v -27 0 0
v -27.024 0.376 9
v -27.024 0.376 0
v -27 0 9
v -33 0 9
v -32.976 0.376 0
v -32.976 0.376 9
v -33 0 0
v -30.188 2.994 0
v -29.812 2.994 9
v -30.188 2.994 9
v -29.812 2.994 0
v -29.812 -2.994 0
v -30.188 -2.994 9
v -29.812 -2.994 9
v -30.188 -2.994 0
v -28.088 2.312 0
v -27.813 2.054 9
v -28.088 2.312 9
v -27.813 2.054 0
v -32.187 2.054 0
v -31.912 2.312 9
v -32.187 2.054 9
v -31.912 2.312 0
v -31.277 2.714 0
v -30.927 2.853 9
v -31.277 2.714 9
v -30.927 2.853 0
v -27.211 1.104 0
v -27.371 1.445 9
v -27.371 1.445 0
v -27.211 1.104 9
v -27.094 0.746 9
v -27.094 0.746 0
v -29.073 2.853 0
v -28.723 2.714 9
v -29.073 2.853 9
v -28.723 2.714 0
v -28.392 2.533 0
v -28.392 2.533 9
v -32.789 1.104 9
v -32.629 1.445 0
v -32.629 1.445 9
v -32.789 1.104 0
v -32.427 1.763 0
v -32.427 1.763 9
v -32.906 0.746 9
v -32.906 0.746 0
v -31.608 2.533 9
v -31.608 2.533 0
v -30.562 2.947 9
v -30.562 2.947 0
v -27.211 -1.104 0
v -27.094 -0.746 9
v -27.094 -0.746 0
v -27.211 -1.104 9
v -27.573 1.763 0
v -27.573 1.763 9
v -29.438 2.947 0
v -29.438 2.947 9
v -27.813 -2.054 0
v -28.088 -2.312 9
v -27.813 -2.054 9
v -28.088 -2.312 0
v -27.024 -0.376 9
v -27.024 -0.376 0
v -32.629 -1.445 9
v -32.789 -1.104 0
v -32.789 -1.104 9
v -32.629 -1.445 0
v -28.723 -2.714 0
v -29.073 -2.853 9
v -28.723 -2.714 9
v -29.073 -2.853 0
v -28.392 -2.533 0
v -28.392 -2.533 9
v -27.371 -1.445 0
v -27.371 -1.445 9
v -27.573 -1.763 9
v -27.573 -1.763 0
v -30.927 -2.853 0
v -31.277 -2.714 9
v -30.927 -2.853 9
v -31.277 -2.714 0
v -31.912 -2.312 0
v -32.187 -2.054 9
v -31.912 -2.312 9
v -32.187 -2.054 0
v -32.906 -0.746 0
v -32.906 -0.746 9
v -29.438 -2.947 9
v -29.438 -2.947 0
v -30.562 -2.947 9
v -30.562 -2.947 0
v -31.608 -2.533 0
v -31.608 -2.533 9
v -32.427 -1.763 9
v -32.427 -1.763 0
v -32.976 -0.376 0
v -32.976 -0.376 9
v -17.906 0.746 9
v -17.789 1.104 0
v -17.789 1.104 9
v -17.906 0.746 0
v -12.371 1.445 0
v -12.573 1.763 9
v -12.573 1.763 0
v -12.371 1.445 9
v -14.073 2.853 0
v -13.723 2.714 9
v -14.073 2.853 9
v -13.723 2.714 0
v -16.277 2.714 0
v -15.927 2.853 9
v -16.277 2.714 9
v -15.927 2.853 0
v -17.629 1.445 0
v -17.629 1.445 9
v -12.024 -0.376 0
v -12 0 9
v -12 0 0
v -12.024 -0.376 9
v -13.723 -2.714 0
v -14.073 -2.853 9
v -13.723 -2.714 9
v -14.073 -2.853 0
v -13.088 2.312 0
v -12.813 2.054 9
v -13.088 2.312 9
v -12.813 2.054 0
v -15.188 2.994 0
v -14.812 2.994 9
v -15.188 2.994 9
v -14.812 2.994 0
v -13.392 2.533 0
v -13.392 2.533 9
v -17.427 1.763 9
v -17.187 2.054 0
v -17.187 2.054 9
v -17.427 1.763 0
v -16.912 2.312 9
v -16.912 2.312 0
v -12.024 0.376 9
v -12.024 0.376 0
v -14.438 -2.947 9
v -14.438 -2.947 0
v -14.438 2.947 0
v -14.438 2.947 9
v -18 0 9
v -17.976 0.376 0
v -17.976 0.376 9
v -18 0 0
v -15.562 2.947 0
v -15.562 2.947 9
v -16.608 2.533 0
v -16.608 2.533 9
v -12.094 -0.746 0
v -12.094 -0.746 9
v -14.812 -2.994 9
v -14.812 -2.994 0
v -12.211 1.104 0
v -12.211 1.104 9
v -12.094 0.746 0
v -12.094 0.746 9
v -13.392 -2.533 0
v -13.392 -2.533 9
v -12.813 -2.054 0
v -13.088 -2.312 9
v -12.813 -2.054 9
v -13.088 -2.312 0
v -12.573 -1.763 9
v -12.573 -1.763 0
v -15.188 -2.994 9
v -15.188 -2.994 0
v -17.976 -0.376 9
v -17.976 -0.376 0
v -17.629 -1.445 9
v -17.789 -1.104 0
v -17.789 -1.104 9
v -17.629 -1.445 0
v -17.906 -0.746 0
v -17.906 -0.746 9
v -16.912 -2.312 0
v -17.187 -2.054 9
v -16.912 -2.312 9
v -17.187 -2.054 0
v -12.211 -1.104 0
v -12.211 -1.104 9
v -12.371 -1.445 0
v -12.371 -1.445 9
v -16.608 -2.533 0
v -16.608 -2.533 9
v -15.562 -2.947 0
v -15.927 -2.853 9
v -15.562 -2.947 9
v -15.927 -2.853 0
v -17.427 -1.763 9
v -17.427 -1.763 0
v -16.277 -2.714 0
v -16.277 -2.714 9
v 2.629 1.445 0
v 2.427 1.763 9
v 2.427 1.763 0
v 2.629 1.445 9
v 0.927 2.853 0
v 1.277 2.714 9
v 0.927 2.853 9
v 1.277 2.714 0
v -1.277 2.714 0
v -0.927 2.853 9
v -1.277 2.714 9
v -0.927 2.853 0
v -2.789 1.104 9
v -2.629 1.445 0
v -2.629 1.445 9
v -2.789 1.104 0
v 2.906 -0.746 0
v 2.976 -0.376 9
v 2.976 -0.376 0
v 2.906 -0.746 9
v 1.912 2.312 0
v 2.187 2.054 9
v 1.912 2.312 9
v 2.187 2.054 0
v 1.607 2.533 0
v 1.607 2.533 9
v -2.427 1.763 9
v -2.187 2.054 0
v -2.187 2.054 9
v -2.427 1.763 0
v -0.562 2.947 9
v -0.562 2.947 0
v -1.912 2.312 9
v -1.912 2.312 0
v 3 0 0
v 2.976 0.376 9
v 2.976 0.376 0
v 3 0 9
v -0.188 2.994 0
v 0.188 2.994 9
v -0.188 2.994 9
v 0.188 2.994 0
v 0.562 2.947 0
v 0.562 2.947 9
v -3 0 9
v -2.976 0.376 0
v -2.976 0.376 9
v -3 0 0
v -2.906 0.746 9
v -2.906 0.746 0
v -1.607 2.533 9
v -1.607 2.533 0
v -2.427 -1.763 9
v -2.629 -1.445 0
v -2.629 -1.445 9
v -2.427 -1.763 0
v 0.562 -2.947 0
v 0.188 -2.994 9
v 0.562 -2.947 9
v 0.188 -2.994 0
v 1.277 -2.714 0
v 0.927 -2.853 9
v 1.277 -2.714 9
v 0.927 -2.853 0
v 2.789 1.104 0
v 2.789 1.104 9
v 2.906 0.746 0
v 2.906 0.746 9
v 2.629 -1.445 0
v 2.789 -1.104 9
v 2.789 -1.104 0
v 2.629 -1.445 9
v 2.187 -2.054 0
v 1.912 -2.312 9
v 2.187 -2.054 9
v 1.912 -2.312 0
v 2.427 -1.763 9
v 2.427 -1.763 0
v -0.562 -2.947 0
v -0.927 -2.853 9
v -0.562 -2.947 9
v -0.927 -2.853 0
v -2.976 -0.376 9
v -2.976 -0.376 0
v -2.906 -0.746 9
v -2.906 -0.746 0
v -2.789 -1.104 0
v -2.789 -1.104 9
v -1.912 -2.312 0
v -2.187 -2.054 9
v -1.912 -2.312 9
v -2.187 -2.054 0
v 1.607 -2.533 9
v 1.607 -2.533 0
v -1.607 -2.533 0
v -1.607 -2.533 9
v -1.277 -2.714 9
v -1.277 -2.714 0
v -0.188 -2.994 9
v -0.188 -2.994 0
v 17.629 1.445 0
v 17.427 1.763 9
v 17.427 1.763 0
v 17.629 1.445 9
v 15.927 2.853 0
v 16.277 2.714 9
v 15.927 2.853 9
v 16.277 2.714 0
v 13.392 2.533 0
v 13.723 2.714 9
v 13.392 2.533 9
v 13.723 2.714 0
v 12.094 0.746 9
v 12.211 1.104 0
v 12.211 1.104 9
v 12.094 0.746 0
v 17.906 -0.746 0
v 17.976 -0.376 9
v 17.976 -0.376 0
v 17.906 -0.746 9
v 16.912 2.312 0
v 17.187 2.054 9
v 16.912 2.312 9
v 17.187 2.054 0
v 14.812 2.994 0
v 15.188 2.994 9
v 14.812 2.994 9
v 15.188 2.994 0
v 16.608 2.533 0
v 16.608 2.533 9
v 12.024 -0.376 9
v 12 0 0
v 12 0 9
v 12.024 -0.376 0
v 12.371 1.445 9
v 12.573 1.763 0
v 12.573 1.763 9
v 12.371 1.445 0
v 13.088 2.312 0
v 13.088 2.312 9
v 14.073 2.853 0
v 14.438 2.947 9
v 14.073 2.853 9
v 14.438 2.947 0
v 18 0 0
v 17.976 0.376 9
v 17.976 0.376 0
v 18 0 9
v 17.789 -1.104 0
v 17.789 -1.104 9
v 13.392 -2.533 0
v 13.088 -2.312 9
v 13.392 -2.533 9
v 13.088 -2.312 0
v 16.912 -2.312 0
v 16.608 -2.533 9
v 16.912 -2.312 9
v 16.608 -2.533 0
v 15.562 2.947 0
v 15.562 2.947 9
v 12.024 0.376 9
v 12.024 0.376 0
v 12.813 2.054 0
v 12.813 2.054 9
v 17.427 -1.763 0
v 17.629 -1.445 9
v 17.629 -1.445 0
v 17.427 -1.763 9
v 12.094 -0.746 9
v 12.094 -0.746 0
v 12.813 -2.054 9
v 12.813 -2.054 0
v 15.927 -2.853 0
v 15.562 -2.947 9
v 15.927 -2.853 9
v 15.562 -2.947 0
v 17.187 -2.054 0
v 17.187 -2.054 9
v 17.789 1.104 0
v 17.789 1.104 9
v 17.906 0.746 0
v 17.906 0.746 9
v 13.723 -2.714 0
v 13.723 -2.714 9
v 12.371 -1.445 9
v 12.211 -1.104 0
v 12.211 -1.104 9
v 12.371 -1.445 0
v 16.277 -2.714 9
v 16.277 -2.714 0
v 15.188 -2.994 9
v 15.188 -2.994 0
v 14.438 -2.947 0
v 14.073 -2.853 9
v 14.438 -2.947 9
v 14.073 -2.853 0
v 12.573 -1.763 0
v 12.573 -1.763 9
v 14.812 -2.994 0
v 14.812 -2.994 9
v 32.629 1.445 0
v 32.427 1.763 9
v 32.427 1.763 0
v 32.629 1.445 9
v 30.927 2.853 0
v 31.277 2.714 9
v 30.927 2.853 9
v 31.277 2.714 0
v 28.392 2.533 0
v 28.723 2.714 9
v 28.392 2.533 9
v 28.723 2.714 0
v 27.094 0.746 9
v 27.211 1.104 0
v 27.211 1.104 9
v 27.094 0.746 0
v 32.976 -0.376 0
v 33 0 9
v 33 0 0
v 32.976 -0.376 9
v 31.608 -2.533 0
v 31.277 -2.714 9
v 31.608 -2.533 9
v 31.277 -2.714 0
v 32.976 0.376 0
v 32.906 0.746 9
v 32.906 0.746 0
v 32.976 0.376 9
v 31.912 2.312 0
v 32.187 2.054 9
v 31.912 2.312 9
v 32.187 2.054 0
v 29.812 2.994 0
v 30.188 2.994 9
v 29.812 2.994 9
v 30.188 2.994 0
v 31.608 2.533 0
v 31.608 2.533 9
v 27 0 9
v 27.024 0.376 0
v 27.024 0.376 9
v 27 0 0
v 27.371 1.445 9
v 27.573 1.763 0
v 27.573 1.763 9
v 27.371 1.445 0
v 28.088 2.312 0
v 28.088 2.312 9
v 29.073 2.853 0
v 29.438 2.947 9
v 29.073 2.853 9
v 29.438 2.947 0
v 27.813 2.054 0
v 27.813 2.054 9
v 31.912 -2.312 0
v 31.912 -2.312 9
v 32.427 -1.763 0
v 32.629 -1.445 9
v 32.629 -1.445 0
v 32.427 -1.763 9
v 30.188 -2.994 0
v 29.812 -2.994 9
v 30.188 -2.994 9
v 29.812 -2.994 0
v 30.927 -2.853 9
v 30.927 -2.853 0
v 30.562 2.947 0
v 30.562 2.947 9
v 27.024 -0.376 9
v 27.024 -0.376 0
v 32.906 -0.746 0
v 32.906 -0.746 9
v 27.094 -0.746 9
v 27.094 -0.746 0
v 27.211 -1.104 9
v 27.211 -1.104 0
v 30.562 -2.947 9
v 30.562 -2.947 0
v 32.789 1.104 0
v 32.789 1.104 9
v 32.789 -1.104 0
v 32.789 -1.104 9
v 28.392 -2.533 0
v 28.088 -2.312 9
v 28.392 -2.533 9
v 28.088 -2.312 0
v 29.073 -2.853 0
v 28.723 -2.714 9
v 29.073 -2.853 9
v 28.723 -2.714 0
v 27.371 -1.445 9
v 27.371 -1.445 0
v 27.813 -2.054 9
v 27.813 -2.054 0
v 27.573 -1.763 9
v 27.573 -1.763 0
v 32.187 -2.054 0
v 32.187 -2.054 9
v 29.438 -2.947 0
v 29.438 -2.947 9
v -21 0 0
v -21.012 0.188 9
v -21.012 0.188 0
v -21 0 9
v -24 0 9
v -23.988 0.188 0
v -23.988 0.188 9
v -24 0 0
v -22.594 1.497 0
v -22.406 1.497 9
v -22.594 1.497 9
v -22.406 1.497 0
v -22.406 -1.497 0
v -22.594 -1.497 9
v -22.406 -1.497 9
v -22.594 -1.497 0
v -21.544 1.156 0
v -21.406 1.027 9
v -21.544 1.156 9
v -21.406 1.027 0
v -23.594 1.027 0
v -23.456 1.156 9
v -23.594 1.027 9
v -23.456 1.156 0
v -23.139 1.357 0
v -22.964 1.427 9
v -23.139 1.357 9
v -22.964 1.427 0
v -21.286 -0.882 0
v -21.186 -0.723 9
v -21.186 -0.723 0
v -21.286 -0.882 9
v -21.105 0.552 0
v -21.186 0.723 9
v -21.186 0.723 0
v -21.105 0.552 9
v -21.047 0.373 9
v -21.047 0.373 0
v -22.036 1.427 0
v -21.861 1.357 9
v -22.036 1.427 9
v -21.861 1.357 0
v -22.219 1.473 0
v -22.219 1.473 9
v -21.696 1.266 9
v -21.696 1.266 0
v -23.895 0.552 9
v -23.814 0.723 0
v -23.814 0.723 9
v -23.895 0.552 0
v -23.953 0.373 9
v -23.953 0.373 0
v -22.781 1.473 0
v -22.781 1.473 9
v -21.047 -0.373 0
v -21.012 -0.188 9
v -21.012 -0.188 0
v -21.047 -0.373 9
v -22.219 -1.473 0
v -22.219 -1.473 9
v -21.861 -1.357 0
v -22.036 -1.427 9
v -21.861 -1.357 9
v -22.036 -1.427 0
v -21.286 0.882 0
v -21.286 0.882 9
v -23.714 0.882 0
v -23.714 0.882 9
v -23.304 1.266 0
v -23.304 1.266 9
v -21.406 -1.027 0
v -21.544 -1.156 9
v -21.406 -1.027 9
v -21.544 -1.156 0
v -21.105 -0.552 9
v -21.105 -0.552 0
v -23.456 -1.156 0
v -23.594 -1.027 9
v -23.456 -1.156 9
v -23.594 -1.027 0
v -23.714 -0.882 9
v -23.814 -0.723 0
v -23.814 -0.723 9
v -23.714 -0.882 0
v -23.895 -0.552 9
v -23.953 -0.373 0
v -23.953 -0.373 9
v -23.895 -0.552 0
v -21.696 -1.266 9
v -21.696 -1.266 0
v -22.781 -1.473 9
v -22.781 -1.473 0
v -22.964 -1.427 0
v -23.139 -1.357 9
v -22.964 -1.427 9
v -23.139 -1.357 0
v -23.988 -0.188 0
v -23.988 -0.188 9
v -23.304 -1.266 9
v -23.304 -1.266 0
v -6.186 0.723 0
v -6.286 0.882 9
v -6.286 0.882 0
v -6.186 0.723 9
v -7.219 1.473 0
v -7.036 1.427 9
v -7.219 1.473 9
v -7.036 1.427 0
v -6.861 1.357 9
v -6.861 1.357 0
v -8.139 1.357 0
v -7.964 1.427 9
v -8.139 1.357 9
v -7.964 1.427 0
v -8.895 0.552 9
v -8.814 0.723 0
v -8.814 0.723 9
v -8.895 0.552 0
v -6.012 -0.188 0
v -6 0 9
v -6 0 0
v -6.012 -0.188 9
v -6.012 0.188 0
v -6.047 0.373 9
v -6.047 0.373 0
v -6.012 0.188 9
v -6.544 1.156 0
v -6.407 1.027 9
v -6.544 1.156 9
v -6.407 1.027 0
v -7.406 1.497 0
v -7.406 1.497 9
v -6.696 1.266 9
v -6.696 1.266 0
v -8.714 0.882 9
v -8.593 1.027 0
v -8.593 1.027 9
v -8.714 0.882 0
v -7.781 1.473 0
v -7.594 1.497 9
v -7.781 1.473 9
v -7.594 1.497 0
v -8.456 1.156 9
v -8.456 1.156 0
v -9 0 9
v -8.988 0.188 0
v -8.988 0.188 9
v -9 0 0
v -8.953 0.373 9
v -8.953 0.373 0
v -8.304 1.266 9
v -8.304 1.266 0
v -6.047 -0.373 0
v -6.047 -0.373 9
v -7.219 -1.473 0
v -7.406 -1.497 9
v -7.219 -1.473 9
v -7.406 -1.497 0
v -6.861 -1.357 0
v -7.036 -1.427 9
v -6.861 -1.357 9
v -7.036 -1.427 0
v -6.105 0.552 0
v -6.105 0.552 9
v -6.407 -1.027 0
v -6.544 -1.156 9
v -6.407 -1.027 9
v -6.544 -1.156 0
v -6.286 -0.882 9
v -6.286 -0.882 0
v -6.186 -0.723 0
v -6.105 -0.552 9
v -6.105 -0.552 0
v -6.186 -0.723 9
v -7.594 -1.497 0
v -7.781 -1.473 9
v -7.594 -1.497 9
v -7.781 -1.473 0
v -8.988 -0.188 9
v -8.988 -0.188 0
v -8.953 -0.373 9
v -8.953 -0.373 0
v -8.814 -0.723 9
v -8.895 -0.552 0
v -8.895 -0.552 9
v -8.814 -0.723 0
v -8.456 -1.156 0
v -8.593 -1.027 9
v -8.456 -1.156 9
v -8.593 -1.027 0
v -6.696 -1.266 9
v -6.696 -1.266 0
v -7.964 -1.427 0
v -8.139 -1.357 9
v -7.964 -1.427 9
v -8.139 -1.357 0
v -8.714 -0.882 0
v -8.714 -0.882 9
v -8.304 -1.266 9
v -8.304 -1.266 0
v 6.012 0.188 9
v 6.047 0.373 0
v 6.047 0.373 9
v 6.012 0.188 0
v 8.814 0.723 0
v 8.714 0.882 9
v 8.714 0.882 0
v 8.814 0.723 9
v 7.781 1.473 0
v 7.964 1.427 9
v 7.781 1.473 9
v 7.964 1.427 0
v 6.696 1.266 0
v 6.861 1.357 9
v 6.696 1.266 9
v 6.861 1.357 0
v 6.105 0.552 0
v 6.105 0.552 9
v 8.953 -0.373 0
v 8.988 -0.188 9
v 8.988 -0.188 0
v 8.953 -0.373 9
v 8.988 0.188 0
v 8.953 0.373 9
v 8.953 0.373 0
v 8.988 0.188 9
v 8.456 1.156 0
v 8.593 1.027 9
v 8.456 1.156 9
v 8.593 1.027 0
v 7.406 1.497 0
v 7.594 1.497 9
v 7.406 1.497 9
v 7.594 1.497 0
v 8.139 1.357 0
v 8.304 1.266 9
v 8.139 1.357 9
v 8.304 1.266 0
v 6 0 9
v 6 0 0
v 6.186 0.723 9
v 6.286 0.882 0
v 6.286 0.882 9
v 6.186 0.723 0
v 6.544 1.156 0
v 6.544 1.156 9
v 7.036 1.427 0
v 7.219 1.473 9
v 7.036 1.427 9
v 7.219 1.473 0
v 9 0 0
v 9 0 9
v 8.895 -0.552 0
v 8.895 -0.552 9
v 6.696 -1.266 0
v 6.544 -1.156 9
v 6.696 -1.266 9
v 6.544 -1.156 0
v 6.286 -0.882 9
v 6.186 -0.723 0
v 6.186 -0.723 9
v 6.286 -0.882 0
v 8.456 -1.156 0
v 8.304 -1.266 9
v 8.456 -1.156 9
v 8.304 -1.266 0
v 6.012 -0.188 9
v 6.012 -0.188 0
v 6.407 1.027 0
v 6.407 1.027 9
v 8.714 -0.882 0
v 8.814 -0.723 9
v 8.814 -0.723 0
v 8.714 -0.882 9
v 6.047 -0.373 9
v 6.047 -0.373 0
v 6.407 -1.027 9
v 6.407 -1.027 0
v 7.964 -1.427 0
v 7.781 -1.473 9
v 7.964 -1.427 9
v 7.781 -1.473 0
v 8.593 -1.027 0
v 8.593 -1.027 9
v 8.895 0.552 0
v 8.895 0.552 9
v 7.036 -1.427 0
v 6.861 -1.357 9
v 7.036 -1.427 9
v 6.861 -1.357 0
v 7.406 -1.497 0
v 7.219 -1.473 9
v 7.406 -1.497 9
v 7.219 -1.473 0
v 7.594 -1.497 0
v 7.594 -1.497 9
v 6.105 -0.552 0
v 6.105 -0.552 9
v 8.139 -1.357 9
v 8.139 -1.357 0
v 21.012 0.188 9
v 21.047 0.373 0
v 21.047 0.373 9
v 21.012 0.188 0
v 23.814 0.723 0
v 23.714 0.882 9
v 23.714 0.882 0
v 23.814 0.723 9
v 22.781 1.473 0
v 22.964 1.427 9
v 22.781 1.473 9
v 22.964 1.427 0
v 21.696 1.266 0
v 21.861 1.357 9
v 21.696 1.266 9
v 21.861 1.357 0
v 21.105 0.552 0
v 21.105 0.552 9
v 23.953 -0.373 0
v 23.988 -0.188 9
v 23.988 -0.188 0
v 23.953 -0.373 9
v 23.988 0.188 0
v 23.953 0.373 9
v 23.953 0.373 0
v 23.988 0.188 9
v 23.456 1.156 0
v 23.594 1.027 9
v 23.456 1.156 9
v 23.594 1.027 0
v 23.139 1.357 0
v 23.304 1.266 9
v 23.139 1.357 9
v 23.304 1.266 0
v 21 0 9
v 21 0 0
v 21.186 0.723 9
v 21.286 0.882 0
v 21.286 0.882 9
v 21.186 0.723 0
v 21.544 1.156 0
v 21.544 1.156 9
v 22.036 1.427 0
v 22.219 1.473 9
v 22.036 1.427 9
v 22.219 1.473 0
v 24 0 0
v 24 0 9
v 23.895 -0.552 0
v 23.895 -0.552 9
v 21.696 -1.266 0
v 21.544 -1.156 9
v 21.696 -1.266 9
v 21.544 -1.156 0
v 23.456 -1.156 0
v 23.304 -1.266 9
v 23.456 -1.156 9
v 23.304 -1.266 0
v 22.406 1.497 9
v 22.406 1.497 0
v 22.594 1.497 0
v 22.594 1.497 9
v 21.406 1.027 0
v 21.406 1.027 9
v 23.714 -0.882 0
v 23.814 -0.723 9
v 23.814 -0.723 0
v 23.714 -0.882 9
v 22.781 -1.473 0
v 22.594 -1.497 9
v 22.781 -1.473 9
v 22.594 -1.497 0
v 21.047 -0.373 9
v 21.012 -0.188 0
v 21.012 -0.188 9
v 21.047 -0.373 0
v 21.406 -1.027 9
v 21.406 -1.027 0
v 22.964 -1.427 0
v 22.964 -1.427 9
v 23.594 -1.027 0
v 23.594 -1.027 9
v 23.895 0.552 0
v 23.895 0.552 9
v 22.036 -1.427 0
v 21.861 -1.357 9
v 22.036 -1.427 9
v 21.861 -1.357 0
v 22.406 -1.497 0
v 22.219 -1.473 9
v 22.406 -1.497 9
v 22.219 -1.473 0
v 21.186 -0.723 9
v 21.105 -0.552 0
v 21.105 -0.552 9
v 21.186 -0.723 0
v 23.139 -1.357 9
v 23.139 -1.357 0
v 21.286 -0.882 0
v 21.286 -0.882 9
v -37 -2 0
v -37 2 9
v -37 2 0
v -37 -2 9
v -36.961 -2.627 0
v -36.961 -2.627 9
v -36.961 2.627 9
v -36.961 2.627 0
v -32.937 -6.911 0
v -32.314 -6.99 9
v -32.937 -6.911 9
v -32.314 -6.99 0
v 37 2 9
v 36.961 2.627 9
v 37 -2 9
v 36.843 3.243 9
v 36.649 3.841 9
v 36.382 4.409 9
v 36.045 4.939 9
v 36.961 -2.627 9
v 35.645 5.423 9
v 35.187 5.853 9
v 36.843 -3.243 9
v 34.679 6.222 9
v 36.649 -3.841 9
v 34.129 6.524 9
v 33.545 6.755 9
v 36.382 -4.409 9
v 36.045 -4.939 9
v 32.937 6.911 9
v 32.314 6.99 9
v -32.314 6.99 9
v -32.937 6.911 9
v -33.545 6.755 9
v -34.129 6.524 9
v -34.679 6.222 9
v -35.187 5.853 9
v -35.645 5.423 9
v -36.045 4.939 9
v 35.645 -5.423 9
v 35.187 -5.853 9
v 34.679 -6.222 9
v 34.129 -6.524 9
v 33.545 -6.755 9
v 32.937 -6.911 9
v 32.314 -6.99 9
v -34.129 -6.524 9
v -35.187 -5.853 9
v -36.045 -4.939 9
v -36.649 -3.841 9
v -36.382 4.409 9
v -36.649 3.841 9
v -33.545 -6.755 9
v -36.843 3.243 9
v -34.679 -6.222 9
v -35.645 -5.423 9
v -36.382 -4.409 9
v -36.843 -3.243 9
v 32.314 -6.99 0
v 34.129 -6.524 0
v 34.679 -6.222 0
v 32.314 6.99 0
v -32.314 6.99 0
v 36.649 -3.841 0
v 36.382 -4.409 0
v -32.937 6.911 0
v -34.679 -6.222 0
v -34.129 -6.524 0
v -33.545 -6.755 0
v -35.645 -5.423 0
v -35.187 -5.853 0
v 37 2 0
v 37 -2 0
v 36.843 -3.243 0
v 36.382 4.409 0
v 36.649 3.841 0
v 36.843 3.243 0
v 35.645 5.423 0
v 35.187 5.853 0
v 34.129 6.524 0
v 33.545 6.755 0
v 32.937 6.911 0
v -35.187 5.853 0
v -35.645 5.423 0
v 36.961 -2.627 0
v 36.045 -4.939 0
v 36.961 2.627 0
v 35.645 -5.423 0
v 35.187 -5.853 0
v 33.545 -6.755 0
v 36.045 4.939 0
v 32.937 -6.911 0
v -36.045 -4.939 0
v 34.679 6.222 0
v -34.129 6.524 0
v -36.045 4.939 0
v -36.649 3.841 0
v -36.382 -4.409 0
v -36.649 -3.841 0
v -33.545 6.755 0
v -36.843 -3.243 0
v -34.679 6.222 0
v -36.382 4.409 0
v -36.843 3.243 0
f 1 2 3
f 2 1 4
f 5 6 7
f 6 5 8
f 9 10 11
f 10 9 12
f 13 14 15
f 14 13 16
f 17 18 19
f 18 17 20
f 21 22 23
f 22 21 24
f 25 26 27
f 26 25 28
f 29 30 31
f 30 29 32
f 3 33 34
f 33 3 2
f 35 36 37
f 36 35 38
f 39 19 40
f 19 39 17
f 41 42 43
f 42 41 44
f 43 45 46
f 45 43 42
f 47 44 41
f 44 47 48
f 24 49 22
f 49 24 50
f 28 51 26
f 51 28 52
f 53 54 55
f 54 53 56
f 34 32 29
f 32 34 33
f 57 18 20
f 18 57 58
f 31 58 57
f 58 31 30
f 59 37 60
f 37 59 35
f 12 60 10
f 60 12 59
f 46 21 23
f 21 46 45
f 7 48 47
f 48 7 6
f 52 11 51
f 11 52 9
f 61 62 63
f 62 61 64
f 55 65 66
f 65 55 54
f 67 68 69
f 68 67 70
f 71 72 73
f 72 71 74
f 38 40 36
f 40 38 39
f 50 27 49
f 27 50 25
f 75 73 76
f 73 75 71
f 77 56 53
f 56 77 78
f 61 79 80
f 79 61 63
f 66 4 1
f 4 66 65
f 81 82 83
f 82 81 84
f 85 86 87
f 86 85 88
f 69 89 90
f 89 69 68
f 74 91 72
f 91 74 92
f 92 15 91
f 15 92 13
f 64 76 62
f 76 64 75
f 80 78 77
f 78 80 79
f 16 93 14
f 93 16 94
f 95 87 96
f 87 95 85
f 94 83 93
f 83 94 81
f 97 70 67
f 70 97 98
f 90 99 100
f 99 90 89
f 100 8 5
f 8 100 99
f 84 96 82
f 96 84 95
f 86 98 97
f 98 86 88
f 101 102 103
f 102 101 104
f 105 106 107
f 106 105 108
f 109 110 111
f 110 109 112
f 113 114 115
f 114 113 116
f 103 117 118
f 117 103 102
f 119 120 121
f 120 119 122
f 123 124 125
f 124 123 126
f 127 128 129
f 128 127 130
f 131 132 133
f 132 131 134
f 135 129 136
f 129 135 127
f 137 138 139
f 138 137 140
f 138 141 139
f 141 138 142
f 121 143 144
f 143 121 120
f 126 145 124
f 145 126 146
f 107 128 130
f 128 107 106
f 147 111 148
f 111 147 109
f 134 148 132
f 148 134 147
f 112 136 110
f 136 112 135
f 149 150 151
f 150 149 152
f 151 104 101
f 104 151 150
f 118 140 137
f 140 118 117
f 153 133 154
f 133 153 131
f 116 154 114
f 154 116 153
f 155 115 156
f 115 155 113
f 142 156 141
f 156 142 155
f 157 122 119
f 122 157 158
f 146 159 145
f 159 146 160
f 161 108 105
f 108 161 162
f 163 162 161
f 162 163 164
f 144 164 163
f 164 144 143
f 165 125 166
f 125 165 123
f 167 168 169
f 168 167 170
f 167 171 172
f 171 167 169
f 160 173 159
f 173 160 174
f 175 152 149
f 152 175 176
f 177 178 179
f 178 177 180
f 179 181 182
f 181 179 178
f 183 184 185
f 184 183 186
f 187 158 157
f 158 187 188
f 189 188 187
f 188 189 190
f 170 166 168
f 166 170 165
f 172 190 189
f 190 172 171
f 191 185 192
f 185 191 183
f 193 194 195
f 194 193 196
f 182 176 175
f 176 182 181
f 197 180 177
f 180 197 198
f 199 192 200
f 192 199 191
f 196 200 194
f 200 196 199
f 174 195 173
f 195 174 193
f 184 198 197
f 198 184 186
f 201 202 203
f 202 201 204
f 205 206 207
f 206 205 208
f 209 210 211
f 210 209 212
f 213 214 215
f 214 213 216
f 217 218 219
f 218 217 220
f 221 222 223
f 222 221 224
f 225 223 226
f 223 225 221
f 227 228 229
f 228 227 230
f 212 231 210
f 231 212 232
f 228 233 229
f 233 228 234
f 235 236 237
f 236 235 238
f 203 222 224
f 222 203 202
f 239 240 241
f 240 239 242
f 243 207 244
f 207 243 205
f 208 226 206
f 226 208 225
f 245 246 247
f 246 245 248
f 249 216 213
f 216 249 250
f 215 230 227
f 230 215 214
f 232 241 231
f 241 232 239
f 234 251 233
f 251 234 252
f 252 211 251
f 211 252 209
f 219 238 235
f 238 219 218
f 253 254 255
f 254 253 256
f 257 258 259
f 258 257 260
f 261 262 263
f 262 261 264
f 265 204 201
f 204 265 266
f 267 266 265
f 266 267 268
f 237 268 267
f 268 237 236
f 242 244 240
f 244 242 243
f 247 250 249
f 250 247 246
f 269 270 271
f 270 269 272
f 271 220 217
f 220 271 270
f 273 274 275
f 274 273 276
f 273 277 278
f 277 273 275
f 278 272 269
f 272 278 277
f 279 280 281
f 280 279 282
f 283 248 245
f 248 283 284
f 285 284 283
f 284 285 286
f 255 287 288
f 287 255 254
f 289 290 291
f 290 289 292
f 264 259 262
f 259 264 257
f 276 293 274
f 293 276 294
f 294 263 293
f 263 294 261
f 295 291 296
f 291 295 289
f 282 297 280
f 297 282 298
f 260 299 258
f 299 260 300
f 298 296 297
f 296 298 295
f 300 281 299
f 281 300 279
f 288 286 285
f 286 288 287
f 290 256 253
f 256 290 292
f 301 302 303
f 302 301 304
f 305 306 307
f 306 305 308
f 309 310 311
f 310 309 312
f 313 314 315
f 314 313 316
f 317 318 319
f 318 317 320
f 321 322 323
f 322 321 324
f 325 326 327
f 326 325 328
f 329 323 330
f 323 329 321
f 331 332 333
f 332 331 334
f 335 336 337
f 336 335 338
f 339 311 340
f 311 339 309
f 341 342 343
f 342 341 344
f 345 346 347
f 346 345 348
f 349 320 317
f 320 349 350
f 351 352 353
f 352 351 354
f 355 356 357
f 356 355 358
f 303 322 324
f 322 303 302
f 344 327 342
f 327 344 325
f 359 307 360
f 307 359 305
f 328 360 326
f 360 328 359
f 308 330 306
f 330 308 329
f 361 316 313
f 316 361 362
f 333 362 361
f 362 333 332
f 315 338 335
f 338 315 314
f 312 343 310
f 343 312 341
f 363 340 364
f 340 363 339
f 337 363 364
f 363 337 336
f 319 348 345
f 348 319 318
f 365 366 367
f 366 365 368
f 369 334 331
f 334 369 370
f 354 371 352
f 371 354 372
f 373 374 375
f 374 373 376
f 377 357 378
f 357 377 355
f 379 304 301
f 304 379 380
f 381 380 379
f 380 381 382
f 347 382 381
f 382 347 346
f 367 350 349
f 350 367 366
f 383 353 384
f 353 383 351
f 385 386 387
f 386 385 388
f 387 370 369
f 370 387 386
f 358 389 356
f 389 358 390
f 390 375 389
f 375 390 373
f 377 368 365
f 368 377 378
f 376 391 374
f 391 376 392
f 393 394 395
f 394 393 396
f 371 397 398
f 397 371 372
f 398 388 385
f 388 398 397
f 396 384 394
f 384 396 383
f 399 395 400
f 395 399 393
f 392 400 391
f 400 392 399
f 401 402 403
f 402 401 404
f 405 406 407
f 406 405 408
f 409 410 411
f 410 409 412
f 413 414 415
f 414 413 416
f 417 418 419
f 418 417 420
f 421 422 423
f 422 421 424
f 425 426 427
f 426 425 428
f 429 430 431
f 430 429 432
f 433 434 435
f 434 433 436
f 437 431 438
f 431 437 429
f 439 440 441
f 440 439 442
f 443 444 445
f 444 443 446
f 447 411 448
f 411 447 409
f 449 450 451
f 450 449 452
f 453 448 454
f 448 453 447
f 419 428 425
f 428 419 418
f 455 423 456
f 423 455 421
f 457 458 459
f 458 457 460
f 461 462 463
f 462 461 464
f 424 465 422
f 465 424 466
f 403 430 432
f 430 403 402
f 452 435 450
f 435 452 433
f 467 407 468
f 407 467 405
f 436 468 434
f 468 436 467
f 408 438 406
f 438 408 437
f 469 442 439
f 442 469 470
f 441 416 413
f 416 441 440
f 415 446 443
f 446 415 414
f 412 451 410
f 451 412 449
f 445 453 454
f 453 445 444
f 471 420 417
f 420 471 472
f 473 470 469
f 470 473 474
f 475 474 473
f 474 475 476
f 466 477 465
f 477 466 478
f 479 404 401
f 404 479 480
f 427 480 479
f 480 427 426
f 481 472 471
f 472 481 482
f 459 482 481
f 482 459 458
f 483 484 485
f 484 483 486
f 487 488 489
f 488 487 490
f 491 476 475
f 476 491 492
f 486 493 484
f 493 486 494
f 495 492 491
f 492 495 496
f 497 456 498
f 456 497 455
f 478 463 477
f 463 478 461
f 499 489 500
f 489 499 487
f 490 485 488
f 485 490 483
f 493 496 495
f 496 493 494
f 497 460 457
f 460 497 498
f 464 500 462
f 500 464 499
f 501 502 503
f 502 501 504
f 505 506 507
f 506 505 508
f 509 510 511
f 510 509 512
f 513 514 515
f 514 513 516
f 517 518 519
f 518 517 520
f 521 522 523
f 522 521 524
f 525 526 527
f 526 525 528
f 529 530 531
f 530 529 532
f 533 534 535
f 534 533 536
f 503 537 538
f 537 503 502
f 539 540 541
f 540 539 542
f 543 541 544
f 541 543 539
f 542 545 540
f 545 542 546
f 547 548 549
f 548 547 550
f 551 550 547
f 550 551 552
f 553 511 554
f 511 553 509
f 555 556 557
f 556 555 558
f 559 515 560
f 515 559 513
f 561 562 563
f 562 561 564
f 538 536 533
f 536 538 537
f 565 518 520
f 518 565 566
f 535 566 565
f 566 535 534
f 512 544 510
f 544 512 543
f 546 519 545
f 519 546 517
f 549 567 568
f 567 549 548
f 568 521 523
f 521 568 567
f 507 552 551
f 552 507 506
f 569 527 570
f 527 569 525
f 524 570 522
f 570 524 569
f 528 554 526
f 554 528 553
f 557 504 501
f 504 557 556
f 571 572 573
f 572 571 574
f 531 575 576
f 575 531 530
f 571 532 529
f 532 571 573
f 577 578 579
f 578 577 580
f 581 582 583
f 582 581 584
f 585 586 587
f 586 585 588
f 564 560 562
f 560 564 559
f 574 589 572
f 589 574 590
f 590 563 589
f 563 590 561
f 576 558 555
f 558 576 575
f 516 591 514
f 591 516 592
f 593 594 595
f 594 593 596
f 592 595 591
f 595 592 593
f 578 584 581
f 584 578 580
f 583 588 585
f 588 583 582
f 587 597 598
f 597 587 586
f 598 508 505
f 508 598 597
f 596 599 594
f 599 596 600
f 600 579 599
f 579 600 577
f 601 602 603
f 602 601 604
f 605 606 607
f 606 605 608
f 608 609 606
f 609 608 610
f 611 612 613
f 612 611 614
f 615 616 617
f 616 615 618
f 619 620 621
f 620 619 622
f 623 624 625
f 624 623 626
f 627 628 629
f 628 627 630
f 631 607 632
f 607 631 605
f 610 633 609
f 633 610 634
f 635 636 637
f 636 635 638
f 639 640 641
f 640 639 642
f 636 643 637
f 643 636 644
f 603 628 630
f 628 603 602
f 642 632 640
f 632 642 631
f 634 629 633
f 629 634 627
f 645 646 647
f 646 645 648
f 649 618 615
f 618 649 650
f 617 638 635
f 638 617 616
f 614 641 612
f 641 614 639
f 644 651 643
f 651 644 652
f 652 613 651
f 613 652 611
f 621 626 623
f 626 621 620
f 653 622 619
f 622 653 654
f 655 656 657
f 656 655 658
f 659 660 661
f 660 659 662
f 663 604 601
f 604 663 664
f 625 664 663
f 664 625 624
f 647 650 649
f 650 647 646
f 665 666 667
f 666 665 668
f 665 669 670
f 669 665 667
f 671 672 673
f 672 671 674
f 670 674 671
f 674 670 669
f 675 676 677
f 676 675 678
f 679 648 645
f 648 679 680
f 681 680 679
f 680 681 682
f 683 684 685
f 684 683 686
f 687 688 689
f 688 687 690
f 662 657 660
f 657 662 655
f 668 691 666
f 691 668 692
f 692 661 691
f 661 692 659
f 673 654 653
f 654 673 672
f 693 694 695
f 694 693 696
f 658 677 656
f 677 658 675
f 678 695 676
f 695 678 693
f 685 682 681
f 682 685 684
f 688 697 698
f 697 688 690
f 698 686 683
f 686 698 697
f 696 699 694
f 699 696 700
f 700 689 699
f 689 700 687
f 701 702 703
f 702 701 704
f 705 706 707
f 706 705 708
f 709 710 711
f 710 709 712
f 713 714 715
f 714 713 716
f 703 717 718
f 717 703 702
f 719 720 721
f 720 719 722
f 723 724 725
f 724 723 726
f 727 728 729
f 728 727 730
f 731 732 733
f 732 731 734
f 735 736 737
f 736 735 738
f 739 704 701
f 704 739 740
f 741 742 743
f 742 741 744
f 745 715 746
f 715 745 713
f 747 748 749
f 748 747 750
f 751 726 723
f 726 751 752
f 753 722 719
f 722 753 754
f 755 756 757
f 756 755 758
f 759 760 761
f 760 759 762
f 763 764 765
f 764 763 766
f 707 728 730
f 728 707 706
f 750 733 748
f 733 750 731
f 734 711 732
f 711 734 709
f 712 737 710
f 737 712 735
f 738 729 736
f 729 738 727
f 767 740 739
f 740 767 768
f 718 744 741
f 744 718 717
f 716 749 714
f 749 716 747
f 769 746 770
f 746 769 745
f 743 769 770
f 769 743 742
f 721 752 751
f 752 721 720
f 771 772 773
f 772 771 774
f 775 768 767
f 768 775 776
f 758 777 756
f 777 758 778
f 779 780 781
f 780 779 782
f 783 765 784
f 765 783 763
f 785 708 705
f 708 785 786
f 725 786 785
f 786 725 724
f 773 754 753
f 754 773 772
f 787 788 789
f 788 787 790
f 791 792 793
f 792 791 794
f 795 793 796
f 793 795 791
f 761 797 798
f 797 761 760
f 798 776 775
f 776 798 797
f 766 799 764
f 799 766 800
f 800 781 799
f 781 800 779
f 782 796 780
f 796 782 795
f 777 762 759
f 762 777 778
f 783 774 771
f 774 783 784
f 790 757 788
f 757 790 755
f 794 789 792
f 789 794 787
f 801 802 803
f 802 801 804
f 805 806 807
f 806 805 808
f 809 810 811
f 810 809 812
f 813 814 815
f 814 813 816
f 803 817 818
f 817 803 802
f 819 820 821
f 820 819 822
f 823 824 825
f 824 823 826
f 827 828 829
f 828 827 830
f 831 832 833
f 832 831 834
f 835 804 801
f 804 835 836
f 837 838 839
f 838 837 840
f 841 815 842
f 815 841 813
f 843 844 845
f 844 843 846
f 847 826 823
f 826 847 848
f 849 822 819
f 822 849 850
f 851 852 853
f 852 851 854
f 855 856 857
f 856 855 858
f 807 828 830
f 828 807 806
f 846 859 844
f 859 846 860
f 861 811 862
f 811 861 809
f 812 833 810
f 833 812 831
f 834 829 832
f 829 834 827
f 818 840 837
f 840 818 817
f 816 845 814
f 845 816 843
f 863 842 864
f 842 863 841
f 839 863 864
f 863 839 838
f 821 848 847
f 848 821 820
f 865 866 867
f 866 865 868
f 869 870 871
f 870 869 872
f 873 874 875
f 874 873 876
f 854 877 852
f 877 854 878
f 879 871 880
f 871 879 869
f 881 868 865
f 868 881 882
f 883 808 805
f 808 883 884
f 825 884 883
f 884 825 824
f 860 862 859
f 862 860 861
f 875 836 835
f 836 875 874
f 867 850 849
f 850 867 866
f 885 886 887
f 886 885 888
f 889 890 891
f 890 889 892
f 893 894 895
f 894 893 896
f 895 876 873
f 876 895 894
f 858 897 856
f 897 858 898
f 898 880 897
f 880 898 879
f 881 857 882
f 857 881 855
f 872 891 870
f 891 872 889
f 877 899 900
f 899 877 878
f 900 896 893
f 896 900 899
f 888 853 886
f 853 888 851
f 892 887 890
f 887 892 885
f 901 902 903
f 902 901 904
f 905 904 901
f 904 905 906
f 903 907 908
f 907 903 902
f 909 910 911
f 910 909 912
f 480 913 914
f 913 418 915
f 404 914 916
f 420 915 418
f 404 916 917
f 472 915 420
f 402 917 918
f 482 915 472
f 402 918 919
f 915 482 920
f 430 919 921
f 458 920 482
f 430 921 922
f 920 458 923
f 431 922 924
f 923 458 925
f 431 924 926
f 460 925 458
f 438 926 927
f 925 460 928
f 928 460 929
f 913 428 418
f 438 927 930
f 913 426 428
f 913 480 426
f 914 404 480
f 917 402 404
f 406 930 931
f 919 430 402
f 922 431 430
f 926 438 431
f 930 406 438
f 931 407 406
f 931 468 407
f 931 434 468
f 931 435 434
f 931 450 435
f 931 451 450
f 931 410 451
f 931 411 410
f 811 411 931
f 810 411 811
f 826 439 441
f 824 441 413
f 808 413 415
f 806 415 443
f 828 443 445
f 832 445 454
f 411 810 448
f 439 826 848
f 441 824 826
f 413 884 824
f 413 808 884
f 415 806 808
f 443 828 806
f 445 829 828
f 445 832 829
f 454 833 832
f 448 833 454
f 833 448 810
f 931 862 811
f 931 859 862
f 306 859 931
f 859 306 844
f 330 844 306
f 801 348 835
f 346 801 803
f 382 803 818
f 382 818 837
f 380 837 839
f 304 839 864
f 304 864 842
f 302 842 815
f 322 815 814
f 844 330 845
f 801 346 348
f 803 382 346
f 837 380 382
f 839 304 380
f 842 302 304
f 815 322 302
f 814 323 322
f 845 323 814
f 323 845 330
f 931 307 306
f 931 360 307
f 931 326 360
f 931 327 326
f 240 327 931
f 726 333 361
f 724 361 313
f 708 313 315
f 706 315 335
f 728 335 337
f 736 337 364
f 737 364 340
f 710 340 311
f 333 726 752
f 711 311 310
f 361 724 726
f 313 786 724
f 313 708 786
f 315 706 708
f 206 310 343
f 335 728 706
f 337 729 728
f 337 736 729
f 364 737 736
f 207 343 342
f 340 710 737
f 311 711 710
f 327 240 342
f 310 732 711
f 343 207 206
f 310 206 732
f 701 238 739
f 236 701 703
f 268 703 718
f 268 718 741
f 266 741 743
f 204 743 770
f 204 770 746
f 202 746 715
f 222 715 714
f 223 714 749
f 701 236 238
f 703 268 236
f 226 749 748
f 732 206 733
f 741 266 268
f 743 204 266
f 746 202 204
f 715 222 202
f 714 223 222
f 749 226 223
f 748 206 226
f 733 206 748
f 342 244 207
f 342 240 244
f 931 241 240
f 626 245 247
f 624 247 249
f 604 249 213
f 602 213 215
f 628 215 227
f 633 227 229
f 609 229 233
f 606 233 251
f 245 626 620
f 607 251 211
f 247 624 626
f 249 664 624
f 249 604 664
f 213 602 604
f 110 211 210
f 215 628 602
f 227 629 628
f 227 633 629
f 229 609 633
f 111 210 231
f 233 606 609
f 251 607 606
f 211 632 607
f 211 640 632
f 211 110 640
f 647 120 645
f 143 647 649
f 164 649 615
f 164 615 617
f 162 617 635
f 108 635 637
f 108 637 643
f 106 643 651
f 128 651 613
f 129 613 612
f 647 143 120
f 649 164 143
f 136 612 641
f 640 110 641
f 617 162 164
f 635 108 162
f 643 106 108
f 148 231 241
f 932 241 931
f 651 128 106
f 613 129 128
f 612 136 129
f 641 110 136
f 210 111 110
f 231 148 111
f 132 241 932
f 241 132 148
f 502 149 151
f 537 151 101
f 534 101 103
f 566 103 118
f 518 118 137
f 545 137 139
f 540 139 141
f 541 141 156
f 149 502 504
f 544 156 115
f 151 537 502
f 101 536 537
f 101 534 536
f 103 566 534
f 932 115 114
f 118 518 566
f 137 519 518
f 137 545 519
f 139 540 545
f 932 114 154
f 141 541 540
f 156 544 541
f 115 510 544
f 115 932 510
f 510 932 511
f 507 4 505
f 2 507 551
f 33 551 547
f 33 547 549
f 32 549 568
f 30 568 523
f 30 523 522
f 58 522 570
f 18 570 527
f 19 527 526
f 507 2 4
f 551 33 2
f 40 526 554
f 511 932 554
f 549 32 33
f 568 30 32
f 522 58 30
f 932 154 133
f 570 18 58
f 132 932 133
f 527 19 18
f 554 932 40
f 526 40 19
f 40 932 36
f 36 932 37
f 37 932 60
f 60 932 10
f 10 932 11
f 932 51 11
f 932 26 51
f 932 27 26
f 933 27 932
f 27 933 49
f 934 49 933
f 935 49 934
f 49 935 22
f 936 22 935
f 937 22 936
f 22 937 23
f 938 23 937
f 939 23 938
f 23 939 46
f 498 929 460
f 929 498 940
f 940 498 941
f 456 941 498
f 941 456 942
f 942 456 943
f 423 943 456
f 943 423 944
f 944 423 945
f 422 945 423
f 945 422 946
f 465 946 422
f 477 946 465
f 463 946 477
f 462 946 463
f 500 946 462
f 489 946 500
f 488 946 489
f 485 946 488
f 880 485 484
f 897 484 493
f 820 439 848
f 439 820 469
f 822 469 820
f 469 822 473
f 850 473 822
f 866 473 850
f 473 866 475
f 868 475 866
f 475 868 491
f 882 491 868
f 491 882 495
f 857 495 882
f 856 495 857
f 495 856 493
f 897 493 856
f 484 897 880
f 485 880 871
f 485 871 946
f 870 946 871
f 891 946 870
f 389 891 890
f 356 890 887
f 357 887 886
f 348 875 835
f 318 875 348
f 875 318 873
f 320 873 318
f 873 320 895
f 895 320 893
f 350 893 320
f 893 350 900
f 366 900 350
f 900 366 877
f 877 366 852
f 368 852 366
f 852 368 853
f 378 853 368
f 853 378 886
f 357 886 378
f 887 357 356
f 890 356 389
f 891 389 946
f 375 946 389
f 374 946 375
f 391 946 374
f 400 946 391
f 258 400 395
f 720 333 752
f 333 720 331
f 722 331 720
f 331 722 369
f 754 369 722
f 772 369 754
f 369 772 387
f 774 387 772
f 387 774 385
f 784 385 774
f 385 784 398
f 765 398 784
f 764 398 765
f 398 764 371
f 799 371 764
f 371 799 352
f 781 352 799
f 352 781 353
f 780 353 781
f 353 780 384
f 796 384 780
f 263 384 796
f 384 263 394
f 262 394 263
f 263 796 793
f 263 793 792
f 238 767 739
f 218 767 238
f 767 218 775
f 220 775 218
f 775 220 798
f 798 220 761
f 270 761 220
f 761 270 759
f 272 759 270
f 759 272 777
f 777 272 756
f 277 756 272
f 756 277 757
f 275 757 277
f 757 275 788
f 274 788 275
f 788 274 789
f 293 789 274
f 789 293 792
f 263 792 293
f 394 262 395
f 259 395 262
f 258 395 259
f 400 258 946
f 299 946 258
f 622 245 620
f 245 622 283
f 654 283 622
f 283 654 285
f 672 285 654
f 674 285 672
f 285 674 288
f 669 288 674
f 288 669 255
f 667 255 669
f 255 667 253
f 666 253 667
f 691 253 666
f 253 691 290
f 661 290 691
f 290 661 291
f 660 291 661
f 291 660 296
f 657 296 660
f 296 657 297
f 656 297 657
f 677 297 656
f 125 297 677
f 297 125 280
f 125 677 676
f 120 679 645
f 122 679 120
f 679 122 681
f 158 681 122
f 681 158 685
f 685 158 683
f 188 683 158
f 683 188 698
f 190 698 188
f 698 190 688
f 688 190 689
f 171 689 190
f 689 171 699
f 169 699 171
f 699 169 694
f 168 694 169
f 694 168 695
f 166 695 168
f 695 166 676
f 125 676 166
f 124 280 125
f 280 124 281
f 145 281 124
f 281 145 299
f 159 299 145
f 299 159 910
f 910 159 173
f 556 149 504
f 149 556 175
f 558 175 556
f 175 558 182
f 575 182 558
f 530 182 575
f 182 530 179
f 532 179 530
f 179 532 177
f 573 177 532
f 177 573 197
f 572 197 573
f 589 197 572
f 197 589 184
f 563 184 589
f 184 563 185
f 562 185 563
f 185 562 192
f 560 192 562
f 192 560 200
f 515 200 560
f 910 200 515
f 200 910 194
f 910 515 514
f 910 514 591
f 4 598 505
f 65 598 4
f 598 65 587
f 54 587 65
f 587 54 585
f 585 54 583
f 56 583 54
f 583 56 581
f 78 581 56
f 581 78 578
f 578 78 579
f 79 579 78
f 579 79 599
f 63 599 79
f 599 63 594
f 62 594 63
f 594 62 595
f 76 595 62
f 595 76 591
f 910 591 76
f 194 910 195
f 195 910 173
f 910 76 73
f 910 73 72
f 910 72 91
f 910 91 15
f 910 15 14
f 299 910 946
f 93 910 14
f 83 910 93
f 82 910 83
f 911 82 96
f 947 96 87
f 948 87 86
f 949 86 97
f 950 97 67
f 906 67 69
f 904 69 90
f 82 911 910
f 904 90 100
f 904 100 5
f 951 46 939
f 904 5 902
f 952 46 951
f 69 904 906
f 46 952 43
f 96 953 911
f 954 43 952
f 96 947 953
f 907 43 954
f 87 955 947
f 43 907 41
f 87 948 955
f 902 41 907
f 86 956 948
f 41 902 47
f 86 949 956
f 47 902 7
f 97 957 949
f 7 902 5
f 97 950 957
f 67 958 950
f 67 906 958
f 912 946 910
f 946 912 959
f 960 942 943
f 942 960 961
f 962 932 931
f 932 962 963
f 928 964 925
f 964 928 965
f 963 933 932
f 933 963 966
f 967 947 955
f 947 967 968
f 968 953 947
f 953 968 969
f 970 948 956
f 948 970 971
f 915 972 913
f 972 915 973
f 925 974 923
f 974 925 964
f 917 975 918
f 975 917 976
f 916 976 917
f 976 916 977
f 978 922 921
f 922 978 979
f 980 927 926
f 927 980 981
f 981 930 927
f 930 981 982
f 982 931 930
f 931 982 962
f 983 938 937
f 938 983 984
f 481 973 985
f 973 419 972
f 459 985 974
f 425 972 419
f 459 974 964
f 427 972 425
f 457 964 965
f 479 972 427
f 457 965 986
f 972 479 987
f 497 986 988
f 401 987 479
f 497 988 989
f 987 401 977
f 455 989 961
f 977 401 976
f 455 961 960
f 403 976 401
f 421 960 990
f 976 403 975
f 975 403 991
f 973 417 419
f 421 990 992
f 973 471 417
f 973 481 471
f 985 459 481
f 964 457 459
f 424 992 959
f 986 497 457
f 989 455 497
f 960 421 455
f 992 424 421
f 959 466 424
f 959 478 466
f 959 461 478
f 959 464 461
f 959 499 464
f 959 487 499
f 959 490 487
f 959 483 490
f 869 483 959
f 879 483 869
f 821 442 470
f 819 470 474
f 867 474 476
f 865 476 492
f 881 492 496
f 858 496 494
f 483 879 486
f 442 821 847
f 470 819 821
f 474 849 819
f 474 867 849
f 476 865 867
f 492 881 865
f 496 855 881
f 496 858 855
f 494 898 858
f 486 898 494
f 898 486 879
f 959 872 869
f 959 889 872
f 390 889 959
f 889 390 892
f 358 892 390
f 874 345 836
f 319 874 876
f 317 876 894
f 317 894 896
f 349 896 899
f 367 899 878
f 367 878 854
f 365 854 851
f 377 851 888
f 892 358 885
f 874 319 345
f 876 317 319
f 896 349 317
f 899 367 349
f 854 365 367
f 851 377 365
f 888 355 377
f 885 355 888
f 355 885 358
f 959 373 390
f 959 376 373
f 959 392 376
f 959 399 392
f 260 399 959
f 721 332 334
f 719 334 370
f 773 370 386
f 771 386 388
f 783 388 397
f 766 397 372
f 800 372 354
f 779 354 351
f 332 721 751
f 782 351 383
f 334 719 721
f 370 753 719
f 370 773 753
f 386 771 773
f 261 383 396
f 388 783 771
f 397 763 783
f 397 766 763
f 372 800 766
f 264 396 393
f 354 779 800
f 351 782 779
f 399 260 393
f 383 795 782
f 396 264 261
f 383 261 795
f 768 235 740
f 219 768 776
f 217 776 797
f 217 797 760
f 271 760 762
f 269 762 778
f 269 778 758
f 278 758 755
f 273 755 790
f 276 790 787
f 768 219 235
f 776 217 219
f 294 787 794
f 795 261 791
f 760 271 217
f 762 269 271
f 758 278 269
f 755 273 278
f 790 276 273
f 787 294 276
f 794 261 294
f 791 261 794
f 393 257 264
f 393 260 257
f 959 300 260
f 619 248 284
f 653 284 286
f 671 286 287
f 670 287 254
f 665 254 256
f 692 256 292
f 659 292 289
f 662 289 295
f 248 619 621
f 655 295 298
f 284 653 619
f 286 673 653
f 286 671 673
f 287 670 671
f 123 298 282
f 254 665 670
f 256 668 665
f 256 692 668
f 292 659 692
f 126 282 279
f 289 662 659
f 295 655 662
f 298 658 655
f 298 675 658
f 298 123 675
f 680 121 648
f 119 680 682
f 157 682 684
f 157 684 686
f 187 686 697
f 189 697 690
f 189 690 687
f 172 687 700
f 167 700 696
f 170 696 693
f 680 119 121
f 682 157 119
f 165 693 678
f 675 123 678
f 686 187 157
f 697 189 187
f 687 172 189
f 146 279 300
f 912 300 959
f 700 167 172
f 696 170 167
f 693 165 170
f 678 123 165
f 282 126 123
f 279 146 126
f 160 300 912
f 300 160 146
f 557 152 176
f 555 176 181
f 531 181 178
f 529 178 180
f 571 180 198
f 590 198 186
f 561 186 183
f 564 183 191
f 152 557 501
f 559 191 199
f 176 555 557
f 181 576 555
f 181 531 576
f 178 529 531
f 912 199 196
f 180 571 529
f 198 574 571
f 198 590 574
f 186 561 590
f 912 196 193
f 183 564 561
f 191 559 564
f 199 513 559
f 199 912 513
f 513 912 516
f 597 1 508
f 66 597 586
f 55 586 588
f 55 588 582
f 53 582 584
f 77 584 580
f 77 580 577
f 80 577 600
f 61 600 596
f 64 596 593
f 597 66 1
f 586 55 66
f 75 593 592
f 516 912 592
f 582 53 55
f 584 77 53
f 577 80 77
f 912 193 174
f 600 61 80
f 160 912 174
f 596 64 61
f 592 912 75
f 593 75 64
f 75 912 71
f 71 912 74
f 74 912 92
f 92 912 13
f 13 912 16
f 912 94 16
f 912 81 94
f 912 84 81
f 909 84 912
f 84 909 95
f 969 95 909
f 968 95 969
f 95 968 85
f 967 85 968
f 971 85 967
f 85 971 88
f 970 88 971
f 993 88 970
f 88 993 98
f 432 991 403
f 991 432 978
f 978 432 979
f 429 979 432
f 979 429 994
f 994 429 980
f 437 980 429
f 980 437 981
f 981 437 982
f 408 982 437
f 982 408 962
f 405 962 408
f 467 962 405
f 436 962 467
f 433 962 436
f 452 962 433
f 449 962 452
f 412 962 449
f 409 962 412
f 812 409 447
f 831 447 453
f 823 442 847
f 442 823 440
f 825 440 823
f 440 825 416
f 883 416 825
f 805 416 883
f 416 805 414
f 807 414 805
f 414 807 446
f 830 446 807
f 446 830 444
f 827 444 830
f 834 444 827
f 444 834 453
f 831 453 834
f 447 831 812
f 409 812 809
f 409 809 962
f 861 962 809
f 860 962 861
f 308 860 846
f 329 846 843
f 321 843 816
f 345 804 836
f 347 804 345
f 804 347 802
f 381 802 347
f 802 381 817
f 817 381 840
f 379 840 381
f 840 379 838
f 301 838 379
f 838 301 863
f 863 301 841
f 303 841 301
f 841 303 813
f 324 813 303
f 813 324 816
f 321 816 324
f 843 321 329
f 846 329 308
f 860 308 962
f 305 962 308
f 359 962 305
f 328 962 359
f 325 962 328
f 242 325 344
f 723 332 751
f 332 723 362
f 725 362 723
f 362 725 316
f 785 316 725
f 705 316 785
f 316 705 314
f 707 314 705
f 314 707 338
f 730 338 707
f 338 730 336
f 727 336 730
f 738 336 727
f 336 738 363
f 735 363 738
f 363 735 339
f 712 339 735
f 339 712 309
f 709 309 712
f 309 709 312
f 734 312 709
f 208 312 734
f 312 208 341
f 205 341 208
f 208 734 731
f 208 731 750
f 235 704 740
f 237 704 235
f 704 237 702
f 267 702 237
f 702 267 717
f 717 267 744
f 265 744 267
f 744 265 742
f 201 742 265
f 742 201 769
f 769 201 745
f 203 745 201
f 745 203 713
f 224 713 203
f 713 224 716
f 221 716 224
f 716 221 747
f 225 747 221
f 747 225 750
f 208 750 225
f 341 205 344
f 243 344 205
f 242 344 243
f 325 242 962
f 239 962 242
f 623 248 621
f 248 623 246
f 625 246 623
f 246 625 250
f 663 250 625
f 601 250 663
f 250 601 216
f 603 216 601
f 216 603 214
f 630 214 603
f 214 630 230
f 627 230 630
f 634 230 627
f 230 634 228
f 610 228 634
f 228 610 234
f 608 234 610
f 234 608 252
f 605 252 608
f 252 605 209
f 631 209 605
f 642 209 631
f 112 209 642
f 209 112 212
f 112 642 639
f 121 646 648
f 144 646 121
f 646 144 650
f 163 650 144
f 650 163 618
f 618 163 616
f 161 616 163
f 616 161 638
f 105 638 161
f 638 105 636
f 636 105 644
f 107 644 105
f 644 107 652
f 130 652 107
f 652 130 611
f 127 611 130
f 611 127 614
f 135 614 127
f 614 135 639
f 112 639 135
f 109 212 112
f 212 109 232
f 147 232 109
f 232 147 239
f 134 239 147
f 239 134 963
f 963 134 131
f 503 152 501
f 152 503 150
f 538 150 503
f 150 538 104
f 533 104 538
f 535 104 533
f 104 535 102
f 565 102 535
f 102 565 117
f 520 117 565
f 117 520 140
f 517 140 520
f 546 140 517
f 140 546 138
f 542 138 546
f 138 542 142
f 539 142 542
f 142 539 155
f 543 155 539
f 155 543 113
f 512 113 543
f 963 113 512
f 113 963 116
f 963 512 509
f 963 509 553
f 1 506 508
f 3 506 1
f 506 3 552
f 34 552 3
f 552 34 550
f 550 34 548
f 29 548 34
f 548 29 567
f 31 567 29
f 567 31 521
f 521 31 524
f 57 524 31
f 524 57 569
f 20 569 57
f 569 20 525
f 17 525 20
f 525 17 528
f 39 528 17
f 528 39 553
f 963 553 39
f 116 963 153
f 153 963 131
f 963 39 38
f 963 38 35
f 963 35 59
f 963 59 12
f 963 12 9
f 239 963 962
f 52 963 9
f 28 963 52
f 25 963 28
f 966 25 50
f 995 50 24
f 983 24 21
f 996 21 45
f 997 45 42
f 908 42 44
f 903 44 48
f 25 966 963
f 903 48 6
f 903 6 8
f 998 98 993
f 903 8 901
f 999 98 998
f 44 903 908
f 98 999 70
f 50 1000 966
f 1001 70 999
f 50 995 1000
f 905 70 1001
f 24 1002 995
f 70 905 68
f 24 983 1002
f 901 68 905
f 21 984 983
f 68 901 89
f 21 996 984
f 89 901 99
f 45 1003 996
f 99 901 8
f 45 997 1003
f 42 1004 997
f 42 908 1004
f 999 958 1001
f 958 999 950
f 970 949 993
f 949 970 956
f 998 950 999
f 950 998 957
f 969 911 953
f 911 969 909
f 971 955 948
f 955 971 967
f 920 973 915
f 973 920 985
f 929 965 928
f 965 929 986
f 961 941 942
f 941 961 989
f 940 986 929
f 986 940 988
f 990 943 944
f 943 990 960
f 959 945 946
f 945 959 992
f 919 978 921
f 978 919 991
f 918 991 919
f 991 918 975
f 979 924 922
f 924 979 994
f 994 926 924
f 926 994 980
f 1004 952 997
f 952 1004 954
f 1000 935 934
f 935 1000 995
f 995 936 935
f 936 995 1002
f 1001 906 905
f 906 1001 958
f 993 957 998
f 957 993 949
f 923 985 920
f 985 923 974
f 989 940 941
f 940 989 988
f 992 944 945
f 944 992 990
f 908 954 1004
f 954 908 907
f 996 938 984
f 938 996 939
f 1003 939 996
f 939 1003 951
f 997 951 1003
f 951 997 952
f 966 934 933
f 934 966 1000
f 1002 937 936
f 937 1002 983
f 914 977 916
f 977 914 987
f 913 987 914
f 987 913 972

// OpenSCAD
$fn = 50;


difference() {
	union() {
		*color(alpha = 1.0000000000, c = "gray") {
			translate(v = [0, 7, 0]) {
				linear_extrude(height = 1) {
					text(font = "Arial:style=Bold", halign = "center", size = 4.5000000000, text = "COMMENT plate main", valign = "center");
				}
			}
		}
		*color(alpha = 1.0000000000, c = "gray") {
			translate(v = [0, 14, 0]) {
				linear_extrude(height = 1) {
					text(font = "Arial:style=Bold", halign = "center", size = 4.5000000000, text = "COMMENT description oobb_plate_shape_p_type_9_depth_5_width_1_height_9_thickness_true_both_holes", valign = "center");
				}
			}
		}
		hull() {
			translate(v = [-32.0000000000, 2.0000000000, 0]) {
				cylinder(h = 9, r = 5);
			}
			translate(v = [32.0000000000, 2.0000000000, 0]) {
				cylinder(h = 9, r = 5);
			}
			translate(v = [-32.0000000000, -2.0000000000, 0]) {
				cylinder(h = 9, r = 5);
			}
			translate(v = [32.0000000000, -2.0000000000, 0]) {
				cylinder(h = 9, r = 5);
			}
		}
	}
	union() {
		*color(alpha = 1.0000000000, c = "gray") {
			translate(v = [0, 7, 0]) {
				linear_extrude(height = 1) {
					text(font = "Arial:style=Bold", halign = "center", size = 4.5000000000, text = "COMMENT holes main", valign = "center");
				}
			}
		}
		*color(alpha = 1.0000000000, c = "gray") {
			translate(v = [0, 14, 0]) {
				linear_extrude(height = 1) {
					text(font = "Arial:style=Bold", halign = "center", size = 4.5000000000, text = "COMMENT description oobb_holes_shape_n_type_5_width_1_height_9_thickness_true_both_holes", valign = "center");
				}
			}
		}
		translate(v = [-30.0000000000, 0.0000000000, 0]) {
			translate(v = [0, 0, -50]) {
				cylinder(h = 100, r = 3.0000000000);
			}
		}
		translate(v = [-15.0000000000, 0.0000000000, 0]) {
			translate(v = [0, 0, -50]) {
				cylinder(h = 100, r = 3.0000000000);
			}
		}
		translate(v = [0, 0, -50]) {
			cylinder(h = 100, r = 3.0000000000);
		}
		translate(v = [15.0000000000, 0.0000000000, 0]) {
			translate(v = [0, 0, -50]) {
				cylinder(h = 100, r = 3.0000000000);
			}
		}
		translate(v = [30.0000000000, 0.0000000000, 0]) {
			translate(v = [0, 0, -50]) {
				cylinder(h = 100, r = 3.0000000000);
			}
		}
		translate(v = [-30.0000000000, 0.0000000000, 0]) {
			translate(v = [0, 0, -50]) {
				cylinder(h = 100, r = 1.5000000000);
			}
		}
		translate(v = [-22.5000000000, 0.0000000000, 0]) {
			translate(v = [0, 0, -50]) {
				cylinder(h = 100, r = 1.5000000000);
			}
		}
		translate(v = [-15.0000000000, 0.0000000000, 0]) {
			translate(v = [0, 0, -50]) {
				cylinder(h = 100, r = 1.5000000000);
			}
		}
		translate(v = [-7.5000000000, 0.0000000000, 0]) {
			translate(v = [0, 0, -50]) {
				cylinder(h = 100, r = 1.5000000000);
			}
		}
		translate(v = [0, 0, -50]) {
			cylinder(h = 100, r = 1.5000000000);
		}
		translate(v = [7.5000000000, 0.0000000000, 0]) {
			translate(v = [0, 0, -50]) {
				cylinder(h = 100, r = 1.5000000000);
			}
		}
		translate(v = [15.0000000000, 0.0000000000, 0]) {
			translate(v = [0, 0, -50]) {
				cylinder(h = 100, r = 1.5000000000);
			}
		}
		translate(v = [22.5000000000, 0.0000000000, 0]) {
			translate(v = [0, 0, -50]) {
				cylinder(h = 100, r = 1.5000000000);
			}
		}
		translate(v = [30.0000000000, 0.0000000000, 0]) {
			translate(v = [0, 0, -50]) {
				cylinder(h = 100, r = 1.5000000000);
			}
		}
	}
}
